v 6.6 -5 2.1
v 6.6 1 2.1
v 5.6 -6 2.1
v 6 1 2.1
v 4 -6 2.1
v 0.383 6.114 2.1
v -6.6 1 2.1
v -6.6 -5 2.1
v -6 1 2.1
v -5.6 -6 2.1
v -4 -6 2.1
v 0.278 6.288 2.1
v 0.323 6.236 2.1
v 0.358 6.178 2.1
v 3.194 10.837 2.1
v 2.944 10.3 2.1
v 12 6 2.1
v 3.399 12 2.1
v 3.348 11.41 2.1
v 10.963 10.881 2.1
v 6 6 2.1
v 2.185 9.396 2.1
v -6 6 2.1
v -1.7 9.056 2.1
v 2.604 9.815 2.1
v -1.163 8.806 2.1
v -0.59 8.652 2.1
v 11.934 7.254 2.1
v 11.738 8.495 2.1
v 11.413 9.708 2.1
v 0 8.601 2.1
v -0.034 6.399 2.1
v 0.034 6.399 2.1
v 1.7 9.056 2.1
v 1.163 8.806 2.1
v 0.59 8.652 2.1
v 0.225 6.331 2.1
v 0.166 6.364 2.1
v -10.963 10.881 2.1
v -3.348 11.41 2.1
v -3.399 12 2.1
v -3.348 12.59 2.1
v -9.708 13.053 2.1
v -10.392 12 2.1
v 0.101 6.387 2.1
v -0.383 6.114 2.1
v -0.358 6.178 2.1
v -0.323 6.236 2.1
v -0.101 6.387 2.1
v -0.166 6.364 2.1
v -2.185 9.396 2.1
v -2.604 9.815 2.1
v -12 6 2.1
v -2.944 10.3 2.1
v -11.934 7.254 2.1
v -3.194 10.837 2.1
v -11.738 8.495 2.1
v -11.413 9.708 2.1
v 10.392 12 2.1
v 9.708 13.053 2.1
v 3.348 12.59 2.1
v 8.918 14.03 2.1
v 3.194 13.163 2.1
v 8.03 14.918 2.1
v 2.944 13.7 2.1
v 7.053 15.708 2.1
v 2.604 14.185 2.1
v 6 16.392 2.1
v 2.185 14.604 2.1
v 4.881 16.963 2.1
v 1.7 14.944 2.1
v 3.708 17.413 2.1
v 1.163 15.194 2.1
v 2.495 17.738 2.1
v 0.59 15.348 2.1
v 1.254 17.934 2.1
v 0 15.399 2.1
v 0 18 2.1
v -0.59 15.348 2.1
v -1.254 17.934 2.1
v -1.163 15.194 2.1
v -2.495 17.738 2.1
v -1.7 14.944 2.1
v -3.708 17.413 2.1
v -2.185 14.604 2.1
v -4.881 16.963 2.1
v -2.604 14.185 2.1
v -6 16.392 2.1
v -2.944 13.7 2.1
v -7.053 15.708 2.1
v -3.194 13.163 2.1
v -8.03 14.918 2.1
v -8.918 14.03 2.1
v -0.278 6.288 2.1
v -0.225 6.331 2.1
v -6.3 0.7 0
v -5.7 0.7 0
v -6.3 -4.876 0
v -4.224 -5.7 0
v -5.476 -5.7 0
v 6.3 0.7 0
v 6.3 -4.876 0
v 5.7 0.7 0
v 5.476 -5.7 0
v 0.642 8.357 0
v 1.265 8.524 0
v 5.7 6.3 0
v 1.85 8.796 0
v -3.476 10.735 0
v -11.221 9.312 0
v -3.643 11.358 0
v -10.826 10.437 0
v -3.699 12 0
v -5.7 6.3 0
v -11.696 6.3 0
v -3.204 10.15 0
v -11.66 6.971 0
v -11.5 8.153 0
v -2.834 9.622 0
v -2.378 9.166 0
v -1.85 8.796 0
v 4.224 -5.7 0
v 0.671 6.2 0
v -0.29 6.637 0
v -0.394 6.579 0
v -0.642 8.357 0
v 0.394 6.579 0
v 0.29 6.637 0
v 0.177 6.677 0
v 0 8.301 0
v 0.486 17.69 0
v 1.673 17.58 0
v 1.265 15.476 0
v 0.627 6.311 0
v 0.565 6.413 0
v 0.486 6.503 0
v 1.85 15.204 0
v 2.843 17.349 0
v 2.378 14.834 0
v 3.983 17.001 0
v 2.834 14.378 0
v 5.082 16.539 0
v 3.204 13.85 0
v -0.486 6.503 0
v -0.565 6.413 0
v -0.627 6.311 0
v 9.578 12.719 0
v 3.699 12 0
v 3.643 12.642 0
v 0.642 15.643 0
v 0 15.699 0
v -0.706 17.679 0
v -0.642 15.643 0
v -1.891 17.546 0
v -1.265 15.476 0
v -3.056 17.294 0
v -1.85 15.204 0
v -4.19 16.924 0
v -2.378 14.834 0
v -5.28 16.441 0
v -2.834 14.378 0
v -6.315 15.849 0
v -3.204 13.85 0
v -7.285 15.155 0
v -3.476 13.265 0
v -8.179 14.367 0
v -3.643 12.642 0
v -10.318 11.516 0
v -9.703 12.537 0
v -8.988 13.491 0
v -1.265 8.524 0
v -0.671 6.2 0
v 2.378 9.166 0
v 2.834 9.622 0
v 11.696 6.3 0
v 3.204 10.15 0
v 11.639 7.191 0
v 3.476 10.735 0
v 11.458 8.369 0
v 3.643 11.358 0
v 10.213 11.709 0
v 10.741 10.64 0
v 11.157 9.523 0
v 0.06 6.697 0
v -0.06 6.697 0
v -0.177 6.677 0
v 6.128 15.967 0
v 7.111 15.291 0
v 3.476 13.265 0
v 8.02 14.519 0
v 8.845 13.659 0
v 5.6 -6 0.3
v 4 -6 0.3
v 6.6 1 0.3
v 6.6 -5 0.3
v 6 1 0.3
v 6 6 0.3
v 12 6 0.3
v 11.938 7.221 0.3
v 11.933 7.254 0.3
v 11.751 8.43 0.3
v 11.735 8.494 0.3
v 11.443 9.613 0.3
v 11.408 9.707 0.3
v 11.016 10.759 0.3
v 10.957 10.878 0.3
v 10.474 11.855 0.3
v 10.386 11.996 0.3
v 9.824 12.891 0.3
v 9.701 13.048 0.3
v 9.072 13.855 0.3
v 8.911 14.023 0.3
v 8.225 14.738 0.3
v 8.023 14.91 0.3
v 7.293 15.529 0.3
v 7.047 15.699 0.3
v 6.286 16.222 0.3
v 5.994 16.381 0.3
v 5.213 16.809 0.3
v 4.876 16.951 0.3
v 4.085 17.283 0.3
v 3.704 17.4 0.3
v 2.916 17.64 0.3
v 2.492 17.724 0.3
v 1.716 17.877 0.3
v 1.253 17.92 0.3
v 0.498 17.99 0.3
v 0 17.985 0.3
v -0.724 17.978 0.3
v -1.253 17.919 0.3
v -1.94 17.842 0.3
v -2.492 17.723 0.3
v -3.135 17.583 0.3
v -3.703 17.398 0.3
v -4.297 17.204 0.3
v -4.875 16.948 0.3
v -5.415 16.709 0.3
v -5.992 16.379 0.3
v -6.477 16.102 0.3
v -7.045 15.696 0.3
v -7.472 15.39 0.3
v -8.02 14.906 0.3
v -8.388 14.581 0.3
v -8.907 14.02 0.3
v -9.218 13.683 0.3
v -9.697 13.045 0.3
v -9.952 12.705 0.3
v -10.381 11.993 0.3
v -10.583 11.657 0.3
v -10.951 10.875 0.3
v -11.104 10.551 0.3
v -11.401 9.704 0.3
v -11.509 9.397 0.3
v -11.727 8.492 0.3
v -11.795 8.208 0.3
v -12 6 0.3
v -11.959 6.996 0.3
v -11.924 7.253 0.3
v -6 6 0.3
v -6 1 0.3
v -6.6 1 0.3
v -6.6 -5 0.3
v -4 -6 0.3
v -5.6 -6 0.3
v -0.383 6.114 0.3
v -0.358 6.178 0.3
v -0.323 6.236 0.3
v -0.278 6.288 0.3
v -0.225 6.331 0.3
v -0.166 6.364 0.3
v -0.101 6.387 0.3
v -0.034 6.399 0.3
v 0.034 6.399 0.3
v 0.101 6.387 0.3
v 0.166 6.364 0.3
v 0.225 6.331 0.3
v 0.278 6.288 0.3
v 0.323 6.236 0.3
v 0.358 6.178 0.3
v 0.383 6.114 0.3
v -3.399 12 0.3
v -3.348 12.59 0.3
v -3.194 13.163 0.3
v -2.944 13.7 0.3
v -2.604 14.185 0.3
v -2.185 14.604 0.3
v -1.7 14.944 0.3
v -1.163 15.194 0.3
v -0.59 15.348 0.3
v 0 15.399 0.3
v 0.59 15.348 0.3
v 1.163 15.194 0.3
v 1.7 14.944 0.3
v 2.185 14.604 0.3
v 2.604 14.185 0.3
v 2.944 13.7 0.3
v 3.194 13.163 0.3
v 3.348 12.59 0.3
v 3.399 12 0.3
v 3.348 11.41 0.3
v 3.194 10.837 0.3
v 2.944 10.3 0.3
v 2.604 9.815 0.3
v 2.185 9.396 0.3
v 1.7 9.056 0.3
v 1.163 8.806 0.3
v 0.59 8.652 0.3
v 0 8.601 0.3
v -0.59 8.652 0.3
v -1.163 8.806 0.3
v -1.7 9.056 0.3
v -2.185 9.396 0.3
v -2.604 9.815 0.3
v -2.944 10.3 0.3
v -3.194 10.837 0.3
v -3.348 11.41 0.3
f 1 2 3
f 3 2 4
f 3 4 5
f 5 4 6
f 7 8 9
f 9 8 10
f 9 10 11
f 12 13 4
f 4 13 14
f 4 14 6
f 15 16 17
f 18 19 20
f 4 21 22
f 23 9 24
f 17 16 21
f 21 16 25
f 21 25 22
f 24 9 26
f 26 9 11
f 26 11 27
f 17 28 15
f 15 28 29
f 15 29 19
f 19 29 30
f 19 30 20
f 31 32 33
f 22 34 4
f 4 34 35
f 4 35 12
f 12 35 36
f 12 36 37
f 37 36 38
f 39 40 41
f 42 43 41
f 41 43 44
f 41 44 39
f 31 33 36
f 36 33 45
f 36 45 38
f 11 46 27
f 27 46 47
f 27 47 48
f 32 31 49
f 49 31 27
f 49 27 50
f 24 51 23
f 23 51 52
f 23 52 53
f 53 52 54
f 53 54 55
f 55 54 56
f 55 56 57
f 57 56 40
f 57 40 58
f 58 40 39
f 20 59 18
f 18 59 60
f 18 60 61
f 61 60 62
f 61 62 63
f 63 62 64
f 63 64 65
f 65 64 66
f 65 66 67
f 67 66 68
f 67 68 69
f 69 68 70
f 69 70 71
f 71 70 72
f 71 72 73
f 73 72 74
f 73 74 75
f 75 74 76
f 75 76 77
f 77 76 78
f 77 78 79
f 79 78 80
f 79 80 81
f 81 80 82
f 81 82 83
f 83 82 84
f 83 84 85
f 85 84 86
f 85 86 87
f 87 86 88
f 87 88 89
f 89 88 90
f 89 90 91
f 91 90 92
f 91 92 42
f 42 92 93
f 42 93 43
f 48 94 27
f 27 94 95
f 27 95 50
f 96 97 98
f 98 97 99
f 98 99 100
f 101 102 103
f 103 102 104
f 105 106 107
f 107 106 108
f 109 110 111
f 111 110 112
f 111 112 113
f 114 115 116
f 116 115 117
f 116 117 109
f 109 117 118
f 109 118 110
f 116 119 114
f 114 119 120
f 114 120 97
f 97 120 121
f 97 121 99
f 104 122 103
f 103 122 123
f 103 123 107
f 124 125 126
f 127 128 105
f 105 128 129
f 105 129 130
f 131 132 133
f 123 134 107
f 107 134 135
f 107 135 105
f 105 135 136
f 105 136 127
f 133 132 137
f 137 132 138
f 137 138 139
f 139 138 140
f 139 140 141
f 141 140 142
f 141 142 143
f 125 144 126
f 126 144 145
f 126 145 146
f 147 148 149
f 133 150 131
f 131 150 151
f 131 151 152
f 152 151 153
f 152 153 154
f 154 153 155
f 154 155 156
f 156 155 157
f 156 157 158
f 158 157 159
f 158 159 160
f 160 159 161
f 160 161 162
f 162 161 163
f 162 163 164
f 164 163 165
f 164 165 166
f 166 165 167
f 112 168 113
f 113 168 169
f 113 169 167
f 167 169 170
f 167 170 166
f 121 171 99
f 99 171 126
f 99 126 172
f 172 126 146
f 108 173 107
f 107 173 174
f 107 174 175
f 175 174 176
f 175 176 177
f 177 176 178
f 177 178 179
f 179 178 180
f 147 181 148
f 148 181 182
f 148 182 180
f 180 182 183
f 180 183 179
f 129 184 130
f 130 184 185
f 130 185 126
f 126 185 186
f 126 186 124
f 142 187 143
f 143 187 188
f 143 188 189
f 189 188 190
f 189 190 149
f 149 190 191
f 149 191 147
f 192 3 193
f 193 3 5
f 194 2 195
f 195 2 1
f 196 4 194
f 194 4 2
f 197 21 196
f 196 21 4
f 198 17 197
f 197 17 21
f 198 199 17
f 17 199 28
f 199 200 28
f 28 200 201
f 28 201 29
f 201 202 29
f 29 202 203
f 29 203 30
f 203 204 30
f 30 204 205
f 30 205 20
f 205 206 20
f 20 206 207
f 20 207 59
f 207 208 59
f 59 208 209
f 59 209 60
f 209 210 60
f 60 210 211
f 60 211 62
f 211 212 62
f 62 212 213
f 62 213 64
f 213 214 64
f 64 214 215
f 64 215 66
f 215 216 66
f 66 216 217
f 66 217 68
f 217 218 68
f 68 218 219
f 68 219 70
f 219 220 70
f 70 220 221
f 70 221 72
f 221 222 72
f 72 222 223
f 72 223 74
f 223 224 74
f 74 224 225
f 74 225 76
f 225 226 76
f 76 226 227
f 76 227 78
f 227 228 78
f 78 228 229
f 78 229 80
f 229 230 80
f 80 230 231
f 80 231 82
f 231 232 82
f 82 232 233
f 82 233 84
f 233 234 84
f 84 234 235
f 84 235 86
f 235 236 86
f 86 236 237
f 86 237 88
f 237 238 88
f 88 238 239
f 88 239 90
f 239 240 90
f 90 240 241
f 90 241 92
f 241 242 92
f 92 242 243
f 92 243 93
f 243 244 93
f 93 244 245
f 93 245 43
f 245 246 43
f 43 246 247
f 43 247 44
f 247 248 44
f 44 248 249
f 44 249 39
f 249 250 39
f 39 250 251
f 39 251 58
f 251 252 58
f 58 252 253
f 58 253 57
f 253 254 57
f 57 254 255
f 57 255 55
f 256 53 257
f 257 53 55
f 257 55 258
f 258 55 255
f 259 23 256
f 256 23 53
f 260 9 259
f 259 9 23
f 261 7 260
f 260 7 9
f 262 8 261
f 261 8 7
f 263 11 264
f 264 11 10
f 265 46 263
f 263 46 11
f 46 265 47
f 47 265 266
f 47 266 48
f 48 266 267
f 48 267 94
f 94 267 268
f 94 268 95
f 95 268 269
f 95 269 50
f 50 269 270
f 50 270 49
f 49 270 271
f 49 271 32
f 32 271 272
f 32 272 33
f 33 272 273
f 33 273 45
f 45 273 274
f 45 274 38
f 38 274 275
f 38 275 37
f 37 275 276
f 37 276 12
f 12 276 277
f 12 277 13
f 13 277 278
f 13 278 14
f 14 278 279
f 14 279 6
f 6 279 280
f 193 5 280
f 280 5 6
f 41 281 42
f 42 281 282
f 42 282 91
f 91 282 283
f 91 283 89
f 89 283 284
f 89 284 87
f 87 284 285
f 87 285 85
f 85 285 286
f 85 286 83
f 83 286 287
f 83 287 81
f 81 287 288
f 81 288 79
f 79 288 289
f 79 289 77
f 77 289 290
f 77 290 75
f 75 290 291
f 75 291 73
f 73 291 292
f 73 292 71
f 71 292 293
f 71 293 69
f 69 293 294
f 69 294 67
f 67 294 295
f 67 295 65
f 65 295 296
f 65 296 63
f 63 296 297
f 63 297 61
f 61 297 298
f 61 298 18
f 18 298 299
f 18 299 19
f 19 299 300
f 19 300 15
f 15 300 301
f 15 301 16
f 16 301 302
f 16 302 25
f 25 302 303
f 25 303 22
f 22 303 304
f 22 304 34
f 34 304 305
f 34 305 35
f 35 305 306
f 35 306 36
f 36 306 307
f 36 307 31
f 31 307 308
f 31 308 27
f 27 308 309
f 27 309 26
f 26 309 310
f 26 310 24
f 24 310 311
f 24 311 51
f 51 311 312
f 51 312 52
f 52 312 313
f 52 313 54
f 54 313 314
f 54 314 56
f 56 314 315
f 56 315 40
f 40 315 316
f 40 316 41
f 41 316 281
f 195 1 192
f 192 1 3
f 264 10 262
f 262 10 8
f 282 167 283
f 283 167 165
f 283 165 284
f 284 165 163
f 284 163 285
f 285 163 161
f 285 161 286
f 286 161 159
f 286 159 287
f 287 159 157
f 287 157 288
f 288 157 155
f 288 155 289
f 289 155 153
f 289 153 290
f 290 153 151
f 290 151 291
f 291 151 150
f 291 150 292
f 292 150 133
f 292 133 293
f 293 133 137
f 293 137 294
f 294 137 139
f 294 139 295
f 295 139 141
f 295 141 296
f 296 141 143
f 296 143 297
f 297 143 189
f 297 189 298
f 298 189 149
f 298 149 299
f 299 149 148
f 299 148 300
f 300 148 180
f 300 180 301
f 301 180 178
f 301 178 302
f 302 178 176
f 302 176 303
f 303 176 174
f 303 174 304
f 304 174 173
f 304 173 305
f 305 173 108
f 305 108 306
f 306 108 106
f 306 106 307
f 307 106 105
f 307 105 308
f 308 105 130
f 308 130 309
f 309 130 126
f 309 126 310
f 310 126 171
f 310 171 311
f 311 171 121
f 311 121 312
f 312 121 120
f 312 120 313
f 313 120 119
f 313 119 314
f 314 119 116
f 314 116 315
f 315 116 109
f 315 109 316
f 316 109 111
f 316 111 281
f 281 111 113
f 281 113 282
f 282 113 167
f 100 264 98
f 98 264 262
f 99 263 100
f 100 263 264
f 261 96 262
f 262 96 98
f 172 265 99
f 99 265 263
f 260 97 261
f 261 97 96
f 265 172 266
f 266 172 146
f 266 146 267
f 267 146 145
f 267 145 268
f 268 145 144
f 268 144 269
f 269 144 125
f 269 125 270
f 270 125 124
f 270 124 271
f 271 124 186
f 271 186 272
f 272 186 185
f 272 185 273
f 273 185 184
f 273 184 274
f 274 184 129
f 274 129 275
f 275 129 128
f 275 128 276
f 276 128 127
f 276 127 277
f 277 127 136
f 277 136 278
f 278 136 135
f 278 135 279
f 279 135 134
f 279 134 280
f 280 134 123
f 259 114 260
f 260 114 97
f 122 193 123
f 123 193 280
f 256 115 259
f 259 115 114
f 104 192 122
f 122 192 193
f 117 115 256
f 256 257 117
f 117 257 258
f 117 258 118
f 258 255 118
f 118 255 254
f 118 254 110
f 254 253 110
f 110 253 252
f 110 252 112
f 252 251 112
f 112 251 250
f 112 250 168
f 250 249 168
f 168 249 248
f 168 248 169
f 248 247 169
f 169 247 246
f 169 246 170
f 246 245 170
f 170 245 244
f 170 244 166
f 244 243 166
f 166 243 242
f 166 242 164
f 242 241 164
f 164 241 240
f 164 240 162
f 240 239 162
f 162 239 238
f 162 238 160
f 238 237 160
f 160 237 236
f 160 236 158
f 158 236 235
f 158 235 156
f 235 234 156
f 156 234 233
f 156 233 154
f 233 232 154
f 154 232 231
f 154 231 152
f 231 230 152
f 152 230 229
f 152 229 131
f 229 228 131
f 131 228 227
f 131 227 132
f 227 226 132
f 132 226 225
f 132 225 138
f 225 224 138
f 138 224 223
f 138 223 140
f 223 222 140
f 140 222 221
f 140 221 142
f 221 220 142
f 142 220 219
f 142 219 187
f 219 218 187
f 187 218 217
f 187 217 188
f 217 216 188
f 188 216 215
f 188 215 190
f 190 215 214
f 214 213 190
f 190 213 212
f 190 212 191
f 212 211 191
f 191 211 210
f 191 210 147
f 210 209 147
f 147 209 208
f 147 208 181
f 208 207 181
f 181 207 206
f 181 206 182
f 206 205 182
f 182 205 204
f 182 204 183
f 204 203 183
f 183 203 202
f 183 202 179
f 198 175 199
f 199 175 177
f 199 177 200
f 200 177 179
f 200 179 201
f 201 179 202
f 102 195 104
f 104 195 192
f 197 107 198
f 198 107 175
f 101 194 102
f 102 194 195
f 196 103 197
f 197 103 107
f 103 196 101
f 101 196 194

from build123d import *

# Parameters (mm, degrees)
SKETCH1_R           = 3.399254874
BOSS_EXTRUDE1_DEPTH = 2.1
CHAMFER1_SIZE       = 1
CHAMFER2_SIZE       = 0.3


with BuildPart() as part:
    # Sketch1 → Boss-Extrude1 (new body)
    with BuildSketch(Plane.XY):
        with BuildLine():
            Line((6, 6), (12, 6))
            ThreePointArc((12, 6), (0, 18), (-12, 6))
            Line((-12, 6), (-6, 6))
            Line((-6, 6), (-6, 1))
            Line((-6, 1), (-6.6, 1))
            Line((-6.6, 1), (-6.6, -6))
            Line((-6.6, -6), (-6, -6))
            Line((-6, -6), (-4, -6))
            Line((-4, -6), (-0.383283535, 6.114427845))
            ThreePointArc((-0.383283535, 6.114427845), (0, 6.4), (0.383283535, 6.114427845))
            Line((0.383283535, 6.114427845), (4, -6))
            Line((4, -6), (6, -6))
            Line((6, -6), (6.6, -6))
            Line((6.6, -6), (6.6, 1))
            Line((6.6, 1), (6, 1))
            Line((6, 1), (6, 6))
        make_face()
        with Locations((0, 12)):
            Circle(SKETCH1_R, mode=Mode.SUBTRACT)
    extrude(amount=BOSS_EXTRUDE1_DEPTH)

    # Chamfer1
    chamfer1_edges = [part.edges().sort_by_distance(p)[0] for p in [
        (-6.6, -6, 1.05),
        (6.6, -6, 1.05),
    ]]
    chamfer(chamfer1_edges, length=CHAMFER1_SIZE)

    # Chamfer2
    chamfer2_edges = [part.edges().sort_by_distance(p)[0] for p in [
        (2.191641768, 0.057213923, 0),
        (0, 6.4, 0),
        (-2.191641768, 0.057213923, 0),
        (-6.6, -2, 0),
        (-6.3, 1, 0),
        (-6, 3.5, 0),
        (-9, 6, 0),
        (0, 18, 0),
        (9, 6, 0),
        (6, 3.5, 0),
        (6.3, 1, 0),
        (4.8, -6, 0),
        (-3.399254874, 12, 0),
        (6.6, -2, 0),
        (-4.8, -6, 0),
        (-6.1, -5.5, 0),
        (6.1, -5.5, 0),
    ]]
    chamfer(chamfer2_edges, length=CHAMFER2_SIZE)


solid = part.part
